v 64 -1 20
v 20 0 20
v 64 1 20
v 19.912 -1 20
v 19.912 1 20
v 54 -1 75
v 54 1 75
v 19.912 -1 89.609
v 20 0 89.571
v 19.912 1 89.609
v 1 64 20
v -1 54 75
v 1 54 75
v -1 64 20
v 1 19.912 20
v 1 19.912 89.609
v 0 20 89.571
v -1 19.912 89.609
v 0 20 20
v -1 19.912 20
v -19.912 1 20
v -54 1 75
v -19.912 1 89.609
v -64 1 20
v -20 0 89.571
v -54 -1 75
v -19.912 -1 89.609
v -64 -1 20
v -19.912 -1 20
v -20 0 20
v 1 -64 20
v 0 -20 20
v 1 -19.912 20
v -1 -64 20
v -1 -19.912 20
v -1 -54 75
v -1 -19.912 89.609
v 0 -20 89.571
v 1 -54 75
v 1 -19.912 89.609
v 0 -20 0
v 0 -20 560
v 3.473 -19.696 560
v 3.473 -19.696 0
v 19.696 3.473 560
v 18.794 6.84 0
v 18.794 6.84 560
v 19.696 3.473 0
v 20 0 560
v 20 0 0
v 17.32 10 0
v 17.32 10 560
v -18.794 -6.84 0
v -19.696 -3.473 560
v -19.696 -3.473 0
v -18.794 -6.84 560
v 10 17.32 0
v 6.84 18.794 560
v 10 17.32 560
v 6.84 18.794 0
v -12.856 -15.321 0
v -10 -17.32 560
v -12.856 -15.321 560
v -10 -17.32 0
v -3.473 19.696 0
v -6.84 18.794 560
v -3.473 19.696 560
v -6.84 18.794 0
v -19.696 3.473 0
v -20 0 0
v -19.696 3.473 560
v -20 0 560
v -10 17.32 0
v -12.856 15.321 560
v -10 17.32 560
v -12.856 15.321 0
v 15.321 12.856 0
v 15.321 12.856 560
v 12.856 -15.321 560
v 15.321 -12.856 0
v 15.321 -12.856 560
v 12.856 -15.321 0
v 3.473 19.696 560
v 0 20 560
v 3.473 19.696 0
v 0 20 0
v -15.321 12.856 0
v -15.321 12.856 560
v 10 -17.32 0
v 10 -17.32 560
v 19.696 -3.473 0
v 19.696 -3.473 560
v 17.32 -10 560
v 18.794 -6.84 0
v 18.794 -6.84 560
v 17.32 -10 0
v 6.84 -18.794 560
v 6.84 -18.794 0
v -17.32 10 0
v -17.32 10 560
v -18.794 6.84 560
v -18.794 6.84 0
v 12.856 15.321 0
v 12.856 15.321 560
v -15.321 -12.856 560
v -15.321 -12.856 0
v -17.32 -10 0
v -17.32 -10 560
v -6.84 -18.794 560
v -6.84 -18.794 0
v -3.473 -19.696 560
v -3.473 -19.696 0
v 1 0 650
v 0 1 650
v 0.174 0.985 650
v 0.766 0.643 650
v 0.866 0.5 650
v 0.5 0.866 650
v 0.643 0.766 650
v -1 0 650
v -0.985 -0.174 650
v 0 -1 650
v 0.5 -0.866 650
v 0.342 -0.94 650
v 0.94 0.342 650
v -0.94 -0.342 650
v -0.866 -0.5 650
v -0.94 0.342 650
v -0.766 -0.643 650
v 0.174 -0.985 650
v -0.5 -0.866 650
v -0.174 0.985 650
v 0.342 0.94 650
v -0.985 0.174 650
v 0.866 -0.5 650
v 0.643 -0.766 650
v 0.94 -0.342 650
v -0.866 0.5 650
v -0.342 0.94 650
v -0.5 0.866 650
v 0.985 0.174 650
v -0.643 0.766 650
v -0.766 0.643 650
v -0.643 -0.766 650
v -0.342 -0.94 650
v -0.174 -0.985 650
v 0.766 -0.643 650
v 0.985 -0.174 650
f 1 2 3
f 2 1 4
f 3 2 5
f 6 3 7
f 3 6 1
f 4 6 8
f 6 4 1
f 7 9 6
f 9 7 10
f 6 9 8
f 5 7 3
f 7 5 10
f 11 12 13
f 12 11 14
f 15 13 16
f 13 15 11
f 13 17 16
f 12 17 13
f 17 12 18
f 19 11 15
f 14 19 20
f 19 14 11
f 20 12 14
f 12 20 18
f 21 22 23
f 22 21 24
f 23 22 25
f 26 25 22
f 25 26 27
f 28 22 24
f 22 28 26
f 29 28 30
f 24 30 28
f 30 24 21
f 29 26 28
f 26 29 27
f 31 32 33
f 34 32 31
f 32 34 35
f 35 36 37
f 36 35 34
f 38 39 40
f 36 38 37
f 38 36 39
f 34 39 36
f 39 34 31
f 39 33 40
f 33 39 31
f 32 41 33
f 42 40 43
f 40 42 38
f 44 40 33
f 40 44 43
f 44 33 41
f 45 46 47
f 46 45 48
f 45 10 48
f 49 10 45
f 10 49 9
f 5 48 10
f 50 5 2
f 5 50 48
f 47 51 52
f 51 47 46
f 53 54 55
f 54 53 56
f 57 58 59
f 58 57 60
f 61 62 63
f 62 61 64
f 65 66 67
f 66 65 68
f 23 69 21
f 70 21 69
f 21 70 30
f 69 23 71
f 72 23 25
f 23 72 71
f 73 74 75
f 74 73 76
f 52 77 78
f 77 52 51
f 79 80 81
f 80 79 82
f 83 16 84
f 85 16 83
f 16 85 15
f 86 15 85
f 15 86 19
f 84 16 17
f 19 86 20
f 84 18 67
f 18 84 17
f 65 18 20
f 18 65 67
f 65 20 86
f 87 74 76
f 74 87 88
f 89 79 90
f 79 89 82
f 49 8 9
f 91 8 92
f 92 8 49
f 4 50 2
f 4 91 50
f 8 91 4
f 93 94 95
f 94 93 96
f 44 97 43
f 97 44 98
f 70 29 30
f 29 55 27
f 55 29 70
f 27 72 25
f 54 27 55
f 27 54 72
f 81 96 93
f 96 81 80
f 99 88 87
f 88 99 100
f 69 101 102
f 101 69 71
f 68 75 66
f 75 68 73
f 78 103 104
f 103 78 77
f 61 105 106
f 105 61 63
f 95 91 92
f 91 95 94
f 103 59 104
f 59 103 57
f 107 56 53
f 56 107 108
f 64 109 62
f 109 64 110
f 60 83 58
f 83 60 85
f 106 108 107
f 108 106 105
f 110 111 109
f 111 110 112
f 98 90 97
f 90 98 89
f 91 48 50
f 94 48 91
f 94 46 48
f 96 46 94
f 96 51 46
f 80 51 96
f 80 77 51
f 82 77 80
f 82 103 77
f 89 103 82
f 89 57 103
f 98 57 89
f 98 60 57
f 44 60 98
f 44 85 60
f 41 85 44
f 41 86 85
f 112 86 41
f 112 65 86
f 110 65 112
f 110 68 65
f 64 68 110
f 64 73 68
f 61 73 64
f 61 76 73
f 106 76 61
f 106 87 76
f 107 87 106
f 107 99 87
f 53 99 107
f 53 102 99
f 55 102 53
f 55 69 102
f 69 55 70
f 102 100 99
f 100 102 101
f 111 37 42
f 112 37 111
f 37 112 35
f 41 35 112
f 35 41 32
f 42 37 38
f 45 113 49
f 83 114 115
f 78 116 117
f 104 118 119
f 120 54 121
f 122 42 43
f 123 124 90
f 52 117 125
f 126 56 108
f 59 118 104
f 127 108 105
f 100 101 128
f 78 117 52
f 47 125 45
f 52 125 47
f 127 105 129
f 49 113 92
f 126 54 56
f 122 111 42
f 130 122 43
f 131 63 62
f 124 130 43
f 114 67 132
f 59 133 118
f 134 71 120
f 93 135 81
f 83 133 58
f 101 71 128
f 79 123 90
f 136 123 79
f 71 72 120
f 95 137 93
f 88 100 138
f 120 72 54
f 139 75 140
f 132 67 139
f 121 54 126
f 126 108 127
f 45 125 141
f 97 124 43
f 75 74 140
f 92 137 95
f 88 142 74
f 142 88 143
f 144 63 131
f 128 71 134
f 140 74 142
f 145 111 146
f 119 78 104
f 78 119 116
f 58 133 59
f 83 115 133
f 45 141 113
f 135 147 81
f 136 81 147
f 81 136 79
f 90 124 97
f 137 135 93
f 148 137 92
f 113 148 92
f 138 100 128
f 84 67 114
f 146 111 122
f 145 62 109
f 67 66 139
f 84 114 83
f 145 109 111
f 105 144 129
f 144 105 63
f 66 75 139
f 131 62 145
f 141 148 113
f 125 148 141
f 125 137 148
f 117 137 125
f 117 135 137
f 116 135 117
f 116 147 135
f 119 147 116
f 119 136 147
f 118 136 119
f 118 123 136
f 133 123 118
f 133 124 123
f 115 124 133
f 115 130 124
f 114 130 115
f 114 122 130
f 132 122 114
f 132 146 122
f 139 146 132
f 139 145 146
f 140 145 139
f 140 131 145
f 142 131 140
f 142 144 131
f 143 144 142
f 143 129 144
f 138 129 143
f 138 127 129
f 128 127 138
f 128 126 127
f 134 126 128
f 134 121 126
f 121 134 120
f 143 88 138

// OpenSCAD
// ISM-RK-1 hobby rocket study OML + structure — #41
// Units: mm. Fixed fins + ghost bulkheads/rings/motor mount.
// No actuated surfaces / guidance / ballistic geometry.

body_d = 40;
body_l = 560;
nose_l = 90;
motor_tube_d = 24;
ring_zs = [80, 200, 320];

module nose() {
    translate([0, 0, body_l])
        cylinder(h = nose_l, d1 = body_d, d2 = 2, $fn = 36);
}

module body() {
    cylinder(h = body_l, d = body_d, $fn = 36);
}

module fin() {
    translate([body_d / 2 - 1, 0, 20])
        rotate([90, 0, 0])
            linear_extrude(height = 2, center = true)
                polygon([[0, 0], [45, 0], [35, 55], [0, 70]]);
}

module fins() {
    for (a = [0:90:270])
        rotate([0, 0, a])
            fin();
}

module nose_bulkhead() {
    translate([0, 0, body_l - 4])
        cylinder(h = 3, d = body_d - 2, $fn = 36);
}

module avionics_bulkheads() {
    for (z = [body_l - 80, body_l - 120])
        translate([0, 0, z])
            difference() {
                cylinder(h = 2, d = body_d - 2, $fn = 36);
                cylinder(h = 3, d = 12, $fn = 24);
            }
}

module centering_rings() {
    for (z = ring_zs)
        translate([0, 0, z])
            difference() {
                cylinder(h = 3, d = body_d - 2, $fn = 36);
                cylinder(h = 4, d = motor_tube_d + 1, $fn = 28);
            }
}

module motor_mount_tube() {
    translate([0, 0, 40])
        difference() {
            cylinder(h = 300, d = motor_tube_d, $fn = 28);
            cylinder(h = 302, d = motor_tube_d - 3, $fn = 28);
        }
}

module fin_roots() {
    for (a = [0:90:270])
        rotate([0, 0, a])
            translate([body_d / 2 - 4, -1, 25])
                cube([6, 2, 50]);
}

module recovery_bulkhead() {
    translate([0, 0, 360])
        difference() {
            cylinder(h = 3, d = body_d - 2, $fn = 36);
            cylinder(h = 4, d = 8, $fn = 20);
        }
}

echo("#41: rocket structural study — rings/mount/fin roots; no guidance");
body();
nose();
fins();
%nose_bulkhead();
%avionics_bulkheads();
%centering_rings();
%motor_mount_tube();
%fin_roots();
%recovery_bulkhead();
